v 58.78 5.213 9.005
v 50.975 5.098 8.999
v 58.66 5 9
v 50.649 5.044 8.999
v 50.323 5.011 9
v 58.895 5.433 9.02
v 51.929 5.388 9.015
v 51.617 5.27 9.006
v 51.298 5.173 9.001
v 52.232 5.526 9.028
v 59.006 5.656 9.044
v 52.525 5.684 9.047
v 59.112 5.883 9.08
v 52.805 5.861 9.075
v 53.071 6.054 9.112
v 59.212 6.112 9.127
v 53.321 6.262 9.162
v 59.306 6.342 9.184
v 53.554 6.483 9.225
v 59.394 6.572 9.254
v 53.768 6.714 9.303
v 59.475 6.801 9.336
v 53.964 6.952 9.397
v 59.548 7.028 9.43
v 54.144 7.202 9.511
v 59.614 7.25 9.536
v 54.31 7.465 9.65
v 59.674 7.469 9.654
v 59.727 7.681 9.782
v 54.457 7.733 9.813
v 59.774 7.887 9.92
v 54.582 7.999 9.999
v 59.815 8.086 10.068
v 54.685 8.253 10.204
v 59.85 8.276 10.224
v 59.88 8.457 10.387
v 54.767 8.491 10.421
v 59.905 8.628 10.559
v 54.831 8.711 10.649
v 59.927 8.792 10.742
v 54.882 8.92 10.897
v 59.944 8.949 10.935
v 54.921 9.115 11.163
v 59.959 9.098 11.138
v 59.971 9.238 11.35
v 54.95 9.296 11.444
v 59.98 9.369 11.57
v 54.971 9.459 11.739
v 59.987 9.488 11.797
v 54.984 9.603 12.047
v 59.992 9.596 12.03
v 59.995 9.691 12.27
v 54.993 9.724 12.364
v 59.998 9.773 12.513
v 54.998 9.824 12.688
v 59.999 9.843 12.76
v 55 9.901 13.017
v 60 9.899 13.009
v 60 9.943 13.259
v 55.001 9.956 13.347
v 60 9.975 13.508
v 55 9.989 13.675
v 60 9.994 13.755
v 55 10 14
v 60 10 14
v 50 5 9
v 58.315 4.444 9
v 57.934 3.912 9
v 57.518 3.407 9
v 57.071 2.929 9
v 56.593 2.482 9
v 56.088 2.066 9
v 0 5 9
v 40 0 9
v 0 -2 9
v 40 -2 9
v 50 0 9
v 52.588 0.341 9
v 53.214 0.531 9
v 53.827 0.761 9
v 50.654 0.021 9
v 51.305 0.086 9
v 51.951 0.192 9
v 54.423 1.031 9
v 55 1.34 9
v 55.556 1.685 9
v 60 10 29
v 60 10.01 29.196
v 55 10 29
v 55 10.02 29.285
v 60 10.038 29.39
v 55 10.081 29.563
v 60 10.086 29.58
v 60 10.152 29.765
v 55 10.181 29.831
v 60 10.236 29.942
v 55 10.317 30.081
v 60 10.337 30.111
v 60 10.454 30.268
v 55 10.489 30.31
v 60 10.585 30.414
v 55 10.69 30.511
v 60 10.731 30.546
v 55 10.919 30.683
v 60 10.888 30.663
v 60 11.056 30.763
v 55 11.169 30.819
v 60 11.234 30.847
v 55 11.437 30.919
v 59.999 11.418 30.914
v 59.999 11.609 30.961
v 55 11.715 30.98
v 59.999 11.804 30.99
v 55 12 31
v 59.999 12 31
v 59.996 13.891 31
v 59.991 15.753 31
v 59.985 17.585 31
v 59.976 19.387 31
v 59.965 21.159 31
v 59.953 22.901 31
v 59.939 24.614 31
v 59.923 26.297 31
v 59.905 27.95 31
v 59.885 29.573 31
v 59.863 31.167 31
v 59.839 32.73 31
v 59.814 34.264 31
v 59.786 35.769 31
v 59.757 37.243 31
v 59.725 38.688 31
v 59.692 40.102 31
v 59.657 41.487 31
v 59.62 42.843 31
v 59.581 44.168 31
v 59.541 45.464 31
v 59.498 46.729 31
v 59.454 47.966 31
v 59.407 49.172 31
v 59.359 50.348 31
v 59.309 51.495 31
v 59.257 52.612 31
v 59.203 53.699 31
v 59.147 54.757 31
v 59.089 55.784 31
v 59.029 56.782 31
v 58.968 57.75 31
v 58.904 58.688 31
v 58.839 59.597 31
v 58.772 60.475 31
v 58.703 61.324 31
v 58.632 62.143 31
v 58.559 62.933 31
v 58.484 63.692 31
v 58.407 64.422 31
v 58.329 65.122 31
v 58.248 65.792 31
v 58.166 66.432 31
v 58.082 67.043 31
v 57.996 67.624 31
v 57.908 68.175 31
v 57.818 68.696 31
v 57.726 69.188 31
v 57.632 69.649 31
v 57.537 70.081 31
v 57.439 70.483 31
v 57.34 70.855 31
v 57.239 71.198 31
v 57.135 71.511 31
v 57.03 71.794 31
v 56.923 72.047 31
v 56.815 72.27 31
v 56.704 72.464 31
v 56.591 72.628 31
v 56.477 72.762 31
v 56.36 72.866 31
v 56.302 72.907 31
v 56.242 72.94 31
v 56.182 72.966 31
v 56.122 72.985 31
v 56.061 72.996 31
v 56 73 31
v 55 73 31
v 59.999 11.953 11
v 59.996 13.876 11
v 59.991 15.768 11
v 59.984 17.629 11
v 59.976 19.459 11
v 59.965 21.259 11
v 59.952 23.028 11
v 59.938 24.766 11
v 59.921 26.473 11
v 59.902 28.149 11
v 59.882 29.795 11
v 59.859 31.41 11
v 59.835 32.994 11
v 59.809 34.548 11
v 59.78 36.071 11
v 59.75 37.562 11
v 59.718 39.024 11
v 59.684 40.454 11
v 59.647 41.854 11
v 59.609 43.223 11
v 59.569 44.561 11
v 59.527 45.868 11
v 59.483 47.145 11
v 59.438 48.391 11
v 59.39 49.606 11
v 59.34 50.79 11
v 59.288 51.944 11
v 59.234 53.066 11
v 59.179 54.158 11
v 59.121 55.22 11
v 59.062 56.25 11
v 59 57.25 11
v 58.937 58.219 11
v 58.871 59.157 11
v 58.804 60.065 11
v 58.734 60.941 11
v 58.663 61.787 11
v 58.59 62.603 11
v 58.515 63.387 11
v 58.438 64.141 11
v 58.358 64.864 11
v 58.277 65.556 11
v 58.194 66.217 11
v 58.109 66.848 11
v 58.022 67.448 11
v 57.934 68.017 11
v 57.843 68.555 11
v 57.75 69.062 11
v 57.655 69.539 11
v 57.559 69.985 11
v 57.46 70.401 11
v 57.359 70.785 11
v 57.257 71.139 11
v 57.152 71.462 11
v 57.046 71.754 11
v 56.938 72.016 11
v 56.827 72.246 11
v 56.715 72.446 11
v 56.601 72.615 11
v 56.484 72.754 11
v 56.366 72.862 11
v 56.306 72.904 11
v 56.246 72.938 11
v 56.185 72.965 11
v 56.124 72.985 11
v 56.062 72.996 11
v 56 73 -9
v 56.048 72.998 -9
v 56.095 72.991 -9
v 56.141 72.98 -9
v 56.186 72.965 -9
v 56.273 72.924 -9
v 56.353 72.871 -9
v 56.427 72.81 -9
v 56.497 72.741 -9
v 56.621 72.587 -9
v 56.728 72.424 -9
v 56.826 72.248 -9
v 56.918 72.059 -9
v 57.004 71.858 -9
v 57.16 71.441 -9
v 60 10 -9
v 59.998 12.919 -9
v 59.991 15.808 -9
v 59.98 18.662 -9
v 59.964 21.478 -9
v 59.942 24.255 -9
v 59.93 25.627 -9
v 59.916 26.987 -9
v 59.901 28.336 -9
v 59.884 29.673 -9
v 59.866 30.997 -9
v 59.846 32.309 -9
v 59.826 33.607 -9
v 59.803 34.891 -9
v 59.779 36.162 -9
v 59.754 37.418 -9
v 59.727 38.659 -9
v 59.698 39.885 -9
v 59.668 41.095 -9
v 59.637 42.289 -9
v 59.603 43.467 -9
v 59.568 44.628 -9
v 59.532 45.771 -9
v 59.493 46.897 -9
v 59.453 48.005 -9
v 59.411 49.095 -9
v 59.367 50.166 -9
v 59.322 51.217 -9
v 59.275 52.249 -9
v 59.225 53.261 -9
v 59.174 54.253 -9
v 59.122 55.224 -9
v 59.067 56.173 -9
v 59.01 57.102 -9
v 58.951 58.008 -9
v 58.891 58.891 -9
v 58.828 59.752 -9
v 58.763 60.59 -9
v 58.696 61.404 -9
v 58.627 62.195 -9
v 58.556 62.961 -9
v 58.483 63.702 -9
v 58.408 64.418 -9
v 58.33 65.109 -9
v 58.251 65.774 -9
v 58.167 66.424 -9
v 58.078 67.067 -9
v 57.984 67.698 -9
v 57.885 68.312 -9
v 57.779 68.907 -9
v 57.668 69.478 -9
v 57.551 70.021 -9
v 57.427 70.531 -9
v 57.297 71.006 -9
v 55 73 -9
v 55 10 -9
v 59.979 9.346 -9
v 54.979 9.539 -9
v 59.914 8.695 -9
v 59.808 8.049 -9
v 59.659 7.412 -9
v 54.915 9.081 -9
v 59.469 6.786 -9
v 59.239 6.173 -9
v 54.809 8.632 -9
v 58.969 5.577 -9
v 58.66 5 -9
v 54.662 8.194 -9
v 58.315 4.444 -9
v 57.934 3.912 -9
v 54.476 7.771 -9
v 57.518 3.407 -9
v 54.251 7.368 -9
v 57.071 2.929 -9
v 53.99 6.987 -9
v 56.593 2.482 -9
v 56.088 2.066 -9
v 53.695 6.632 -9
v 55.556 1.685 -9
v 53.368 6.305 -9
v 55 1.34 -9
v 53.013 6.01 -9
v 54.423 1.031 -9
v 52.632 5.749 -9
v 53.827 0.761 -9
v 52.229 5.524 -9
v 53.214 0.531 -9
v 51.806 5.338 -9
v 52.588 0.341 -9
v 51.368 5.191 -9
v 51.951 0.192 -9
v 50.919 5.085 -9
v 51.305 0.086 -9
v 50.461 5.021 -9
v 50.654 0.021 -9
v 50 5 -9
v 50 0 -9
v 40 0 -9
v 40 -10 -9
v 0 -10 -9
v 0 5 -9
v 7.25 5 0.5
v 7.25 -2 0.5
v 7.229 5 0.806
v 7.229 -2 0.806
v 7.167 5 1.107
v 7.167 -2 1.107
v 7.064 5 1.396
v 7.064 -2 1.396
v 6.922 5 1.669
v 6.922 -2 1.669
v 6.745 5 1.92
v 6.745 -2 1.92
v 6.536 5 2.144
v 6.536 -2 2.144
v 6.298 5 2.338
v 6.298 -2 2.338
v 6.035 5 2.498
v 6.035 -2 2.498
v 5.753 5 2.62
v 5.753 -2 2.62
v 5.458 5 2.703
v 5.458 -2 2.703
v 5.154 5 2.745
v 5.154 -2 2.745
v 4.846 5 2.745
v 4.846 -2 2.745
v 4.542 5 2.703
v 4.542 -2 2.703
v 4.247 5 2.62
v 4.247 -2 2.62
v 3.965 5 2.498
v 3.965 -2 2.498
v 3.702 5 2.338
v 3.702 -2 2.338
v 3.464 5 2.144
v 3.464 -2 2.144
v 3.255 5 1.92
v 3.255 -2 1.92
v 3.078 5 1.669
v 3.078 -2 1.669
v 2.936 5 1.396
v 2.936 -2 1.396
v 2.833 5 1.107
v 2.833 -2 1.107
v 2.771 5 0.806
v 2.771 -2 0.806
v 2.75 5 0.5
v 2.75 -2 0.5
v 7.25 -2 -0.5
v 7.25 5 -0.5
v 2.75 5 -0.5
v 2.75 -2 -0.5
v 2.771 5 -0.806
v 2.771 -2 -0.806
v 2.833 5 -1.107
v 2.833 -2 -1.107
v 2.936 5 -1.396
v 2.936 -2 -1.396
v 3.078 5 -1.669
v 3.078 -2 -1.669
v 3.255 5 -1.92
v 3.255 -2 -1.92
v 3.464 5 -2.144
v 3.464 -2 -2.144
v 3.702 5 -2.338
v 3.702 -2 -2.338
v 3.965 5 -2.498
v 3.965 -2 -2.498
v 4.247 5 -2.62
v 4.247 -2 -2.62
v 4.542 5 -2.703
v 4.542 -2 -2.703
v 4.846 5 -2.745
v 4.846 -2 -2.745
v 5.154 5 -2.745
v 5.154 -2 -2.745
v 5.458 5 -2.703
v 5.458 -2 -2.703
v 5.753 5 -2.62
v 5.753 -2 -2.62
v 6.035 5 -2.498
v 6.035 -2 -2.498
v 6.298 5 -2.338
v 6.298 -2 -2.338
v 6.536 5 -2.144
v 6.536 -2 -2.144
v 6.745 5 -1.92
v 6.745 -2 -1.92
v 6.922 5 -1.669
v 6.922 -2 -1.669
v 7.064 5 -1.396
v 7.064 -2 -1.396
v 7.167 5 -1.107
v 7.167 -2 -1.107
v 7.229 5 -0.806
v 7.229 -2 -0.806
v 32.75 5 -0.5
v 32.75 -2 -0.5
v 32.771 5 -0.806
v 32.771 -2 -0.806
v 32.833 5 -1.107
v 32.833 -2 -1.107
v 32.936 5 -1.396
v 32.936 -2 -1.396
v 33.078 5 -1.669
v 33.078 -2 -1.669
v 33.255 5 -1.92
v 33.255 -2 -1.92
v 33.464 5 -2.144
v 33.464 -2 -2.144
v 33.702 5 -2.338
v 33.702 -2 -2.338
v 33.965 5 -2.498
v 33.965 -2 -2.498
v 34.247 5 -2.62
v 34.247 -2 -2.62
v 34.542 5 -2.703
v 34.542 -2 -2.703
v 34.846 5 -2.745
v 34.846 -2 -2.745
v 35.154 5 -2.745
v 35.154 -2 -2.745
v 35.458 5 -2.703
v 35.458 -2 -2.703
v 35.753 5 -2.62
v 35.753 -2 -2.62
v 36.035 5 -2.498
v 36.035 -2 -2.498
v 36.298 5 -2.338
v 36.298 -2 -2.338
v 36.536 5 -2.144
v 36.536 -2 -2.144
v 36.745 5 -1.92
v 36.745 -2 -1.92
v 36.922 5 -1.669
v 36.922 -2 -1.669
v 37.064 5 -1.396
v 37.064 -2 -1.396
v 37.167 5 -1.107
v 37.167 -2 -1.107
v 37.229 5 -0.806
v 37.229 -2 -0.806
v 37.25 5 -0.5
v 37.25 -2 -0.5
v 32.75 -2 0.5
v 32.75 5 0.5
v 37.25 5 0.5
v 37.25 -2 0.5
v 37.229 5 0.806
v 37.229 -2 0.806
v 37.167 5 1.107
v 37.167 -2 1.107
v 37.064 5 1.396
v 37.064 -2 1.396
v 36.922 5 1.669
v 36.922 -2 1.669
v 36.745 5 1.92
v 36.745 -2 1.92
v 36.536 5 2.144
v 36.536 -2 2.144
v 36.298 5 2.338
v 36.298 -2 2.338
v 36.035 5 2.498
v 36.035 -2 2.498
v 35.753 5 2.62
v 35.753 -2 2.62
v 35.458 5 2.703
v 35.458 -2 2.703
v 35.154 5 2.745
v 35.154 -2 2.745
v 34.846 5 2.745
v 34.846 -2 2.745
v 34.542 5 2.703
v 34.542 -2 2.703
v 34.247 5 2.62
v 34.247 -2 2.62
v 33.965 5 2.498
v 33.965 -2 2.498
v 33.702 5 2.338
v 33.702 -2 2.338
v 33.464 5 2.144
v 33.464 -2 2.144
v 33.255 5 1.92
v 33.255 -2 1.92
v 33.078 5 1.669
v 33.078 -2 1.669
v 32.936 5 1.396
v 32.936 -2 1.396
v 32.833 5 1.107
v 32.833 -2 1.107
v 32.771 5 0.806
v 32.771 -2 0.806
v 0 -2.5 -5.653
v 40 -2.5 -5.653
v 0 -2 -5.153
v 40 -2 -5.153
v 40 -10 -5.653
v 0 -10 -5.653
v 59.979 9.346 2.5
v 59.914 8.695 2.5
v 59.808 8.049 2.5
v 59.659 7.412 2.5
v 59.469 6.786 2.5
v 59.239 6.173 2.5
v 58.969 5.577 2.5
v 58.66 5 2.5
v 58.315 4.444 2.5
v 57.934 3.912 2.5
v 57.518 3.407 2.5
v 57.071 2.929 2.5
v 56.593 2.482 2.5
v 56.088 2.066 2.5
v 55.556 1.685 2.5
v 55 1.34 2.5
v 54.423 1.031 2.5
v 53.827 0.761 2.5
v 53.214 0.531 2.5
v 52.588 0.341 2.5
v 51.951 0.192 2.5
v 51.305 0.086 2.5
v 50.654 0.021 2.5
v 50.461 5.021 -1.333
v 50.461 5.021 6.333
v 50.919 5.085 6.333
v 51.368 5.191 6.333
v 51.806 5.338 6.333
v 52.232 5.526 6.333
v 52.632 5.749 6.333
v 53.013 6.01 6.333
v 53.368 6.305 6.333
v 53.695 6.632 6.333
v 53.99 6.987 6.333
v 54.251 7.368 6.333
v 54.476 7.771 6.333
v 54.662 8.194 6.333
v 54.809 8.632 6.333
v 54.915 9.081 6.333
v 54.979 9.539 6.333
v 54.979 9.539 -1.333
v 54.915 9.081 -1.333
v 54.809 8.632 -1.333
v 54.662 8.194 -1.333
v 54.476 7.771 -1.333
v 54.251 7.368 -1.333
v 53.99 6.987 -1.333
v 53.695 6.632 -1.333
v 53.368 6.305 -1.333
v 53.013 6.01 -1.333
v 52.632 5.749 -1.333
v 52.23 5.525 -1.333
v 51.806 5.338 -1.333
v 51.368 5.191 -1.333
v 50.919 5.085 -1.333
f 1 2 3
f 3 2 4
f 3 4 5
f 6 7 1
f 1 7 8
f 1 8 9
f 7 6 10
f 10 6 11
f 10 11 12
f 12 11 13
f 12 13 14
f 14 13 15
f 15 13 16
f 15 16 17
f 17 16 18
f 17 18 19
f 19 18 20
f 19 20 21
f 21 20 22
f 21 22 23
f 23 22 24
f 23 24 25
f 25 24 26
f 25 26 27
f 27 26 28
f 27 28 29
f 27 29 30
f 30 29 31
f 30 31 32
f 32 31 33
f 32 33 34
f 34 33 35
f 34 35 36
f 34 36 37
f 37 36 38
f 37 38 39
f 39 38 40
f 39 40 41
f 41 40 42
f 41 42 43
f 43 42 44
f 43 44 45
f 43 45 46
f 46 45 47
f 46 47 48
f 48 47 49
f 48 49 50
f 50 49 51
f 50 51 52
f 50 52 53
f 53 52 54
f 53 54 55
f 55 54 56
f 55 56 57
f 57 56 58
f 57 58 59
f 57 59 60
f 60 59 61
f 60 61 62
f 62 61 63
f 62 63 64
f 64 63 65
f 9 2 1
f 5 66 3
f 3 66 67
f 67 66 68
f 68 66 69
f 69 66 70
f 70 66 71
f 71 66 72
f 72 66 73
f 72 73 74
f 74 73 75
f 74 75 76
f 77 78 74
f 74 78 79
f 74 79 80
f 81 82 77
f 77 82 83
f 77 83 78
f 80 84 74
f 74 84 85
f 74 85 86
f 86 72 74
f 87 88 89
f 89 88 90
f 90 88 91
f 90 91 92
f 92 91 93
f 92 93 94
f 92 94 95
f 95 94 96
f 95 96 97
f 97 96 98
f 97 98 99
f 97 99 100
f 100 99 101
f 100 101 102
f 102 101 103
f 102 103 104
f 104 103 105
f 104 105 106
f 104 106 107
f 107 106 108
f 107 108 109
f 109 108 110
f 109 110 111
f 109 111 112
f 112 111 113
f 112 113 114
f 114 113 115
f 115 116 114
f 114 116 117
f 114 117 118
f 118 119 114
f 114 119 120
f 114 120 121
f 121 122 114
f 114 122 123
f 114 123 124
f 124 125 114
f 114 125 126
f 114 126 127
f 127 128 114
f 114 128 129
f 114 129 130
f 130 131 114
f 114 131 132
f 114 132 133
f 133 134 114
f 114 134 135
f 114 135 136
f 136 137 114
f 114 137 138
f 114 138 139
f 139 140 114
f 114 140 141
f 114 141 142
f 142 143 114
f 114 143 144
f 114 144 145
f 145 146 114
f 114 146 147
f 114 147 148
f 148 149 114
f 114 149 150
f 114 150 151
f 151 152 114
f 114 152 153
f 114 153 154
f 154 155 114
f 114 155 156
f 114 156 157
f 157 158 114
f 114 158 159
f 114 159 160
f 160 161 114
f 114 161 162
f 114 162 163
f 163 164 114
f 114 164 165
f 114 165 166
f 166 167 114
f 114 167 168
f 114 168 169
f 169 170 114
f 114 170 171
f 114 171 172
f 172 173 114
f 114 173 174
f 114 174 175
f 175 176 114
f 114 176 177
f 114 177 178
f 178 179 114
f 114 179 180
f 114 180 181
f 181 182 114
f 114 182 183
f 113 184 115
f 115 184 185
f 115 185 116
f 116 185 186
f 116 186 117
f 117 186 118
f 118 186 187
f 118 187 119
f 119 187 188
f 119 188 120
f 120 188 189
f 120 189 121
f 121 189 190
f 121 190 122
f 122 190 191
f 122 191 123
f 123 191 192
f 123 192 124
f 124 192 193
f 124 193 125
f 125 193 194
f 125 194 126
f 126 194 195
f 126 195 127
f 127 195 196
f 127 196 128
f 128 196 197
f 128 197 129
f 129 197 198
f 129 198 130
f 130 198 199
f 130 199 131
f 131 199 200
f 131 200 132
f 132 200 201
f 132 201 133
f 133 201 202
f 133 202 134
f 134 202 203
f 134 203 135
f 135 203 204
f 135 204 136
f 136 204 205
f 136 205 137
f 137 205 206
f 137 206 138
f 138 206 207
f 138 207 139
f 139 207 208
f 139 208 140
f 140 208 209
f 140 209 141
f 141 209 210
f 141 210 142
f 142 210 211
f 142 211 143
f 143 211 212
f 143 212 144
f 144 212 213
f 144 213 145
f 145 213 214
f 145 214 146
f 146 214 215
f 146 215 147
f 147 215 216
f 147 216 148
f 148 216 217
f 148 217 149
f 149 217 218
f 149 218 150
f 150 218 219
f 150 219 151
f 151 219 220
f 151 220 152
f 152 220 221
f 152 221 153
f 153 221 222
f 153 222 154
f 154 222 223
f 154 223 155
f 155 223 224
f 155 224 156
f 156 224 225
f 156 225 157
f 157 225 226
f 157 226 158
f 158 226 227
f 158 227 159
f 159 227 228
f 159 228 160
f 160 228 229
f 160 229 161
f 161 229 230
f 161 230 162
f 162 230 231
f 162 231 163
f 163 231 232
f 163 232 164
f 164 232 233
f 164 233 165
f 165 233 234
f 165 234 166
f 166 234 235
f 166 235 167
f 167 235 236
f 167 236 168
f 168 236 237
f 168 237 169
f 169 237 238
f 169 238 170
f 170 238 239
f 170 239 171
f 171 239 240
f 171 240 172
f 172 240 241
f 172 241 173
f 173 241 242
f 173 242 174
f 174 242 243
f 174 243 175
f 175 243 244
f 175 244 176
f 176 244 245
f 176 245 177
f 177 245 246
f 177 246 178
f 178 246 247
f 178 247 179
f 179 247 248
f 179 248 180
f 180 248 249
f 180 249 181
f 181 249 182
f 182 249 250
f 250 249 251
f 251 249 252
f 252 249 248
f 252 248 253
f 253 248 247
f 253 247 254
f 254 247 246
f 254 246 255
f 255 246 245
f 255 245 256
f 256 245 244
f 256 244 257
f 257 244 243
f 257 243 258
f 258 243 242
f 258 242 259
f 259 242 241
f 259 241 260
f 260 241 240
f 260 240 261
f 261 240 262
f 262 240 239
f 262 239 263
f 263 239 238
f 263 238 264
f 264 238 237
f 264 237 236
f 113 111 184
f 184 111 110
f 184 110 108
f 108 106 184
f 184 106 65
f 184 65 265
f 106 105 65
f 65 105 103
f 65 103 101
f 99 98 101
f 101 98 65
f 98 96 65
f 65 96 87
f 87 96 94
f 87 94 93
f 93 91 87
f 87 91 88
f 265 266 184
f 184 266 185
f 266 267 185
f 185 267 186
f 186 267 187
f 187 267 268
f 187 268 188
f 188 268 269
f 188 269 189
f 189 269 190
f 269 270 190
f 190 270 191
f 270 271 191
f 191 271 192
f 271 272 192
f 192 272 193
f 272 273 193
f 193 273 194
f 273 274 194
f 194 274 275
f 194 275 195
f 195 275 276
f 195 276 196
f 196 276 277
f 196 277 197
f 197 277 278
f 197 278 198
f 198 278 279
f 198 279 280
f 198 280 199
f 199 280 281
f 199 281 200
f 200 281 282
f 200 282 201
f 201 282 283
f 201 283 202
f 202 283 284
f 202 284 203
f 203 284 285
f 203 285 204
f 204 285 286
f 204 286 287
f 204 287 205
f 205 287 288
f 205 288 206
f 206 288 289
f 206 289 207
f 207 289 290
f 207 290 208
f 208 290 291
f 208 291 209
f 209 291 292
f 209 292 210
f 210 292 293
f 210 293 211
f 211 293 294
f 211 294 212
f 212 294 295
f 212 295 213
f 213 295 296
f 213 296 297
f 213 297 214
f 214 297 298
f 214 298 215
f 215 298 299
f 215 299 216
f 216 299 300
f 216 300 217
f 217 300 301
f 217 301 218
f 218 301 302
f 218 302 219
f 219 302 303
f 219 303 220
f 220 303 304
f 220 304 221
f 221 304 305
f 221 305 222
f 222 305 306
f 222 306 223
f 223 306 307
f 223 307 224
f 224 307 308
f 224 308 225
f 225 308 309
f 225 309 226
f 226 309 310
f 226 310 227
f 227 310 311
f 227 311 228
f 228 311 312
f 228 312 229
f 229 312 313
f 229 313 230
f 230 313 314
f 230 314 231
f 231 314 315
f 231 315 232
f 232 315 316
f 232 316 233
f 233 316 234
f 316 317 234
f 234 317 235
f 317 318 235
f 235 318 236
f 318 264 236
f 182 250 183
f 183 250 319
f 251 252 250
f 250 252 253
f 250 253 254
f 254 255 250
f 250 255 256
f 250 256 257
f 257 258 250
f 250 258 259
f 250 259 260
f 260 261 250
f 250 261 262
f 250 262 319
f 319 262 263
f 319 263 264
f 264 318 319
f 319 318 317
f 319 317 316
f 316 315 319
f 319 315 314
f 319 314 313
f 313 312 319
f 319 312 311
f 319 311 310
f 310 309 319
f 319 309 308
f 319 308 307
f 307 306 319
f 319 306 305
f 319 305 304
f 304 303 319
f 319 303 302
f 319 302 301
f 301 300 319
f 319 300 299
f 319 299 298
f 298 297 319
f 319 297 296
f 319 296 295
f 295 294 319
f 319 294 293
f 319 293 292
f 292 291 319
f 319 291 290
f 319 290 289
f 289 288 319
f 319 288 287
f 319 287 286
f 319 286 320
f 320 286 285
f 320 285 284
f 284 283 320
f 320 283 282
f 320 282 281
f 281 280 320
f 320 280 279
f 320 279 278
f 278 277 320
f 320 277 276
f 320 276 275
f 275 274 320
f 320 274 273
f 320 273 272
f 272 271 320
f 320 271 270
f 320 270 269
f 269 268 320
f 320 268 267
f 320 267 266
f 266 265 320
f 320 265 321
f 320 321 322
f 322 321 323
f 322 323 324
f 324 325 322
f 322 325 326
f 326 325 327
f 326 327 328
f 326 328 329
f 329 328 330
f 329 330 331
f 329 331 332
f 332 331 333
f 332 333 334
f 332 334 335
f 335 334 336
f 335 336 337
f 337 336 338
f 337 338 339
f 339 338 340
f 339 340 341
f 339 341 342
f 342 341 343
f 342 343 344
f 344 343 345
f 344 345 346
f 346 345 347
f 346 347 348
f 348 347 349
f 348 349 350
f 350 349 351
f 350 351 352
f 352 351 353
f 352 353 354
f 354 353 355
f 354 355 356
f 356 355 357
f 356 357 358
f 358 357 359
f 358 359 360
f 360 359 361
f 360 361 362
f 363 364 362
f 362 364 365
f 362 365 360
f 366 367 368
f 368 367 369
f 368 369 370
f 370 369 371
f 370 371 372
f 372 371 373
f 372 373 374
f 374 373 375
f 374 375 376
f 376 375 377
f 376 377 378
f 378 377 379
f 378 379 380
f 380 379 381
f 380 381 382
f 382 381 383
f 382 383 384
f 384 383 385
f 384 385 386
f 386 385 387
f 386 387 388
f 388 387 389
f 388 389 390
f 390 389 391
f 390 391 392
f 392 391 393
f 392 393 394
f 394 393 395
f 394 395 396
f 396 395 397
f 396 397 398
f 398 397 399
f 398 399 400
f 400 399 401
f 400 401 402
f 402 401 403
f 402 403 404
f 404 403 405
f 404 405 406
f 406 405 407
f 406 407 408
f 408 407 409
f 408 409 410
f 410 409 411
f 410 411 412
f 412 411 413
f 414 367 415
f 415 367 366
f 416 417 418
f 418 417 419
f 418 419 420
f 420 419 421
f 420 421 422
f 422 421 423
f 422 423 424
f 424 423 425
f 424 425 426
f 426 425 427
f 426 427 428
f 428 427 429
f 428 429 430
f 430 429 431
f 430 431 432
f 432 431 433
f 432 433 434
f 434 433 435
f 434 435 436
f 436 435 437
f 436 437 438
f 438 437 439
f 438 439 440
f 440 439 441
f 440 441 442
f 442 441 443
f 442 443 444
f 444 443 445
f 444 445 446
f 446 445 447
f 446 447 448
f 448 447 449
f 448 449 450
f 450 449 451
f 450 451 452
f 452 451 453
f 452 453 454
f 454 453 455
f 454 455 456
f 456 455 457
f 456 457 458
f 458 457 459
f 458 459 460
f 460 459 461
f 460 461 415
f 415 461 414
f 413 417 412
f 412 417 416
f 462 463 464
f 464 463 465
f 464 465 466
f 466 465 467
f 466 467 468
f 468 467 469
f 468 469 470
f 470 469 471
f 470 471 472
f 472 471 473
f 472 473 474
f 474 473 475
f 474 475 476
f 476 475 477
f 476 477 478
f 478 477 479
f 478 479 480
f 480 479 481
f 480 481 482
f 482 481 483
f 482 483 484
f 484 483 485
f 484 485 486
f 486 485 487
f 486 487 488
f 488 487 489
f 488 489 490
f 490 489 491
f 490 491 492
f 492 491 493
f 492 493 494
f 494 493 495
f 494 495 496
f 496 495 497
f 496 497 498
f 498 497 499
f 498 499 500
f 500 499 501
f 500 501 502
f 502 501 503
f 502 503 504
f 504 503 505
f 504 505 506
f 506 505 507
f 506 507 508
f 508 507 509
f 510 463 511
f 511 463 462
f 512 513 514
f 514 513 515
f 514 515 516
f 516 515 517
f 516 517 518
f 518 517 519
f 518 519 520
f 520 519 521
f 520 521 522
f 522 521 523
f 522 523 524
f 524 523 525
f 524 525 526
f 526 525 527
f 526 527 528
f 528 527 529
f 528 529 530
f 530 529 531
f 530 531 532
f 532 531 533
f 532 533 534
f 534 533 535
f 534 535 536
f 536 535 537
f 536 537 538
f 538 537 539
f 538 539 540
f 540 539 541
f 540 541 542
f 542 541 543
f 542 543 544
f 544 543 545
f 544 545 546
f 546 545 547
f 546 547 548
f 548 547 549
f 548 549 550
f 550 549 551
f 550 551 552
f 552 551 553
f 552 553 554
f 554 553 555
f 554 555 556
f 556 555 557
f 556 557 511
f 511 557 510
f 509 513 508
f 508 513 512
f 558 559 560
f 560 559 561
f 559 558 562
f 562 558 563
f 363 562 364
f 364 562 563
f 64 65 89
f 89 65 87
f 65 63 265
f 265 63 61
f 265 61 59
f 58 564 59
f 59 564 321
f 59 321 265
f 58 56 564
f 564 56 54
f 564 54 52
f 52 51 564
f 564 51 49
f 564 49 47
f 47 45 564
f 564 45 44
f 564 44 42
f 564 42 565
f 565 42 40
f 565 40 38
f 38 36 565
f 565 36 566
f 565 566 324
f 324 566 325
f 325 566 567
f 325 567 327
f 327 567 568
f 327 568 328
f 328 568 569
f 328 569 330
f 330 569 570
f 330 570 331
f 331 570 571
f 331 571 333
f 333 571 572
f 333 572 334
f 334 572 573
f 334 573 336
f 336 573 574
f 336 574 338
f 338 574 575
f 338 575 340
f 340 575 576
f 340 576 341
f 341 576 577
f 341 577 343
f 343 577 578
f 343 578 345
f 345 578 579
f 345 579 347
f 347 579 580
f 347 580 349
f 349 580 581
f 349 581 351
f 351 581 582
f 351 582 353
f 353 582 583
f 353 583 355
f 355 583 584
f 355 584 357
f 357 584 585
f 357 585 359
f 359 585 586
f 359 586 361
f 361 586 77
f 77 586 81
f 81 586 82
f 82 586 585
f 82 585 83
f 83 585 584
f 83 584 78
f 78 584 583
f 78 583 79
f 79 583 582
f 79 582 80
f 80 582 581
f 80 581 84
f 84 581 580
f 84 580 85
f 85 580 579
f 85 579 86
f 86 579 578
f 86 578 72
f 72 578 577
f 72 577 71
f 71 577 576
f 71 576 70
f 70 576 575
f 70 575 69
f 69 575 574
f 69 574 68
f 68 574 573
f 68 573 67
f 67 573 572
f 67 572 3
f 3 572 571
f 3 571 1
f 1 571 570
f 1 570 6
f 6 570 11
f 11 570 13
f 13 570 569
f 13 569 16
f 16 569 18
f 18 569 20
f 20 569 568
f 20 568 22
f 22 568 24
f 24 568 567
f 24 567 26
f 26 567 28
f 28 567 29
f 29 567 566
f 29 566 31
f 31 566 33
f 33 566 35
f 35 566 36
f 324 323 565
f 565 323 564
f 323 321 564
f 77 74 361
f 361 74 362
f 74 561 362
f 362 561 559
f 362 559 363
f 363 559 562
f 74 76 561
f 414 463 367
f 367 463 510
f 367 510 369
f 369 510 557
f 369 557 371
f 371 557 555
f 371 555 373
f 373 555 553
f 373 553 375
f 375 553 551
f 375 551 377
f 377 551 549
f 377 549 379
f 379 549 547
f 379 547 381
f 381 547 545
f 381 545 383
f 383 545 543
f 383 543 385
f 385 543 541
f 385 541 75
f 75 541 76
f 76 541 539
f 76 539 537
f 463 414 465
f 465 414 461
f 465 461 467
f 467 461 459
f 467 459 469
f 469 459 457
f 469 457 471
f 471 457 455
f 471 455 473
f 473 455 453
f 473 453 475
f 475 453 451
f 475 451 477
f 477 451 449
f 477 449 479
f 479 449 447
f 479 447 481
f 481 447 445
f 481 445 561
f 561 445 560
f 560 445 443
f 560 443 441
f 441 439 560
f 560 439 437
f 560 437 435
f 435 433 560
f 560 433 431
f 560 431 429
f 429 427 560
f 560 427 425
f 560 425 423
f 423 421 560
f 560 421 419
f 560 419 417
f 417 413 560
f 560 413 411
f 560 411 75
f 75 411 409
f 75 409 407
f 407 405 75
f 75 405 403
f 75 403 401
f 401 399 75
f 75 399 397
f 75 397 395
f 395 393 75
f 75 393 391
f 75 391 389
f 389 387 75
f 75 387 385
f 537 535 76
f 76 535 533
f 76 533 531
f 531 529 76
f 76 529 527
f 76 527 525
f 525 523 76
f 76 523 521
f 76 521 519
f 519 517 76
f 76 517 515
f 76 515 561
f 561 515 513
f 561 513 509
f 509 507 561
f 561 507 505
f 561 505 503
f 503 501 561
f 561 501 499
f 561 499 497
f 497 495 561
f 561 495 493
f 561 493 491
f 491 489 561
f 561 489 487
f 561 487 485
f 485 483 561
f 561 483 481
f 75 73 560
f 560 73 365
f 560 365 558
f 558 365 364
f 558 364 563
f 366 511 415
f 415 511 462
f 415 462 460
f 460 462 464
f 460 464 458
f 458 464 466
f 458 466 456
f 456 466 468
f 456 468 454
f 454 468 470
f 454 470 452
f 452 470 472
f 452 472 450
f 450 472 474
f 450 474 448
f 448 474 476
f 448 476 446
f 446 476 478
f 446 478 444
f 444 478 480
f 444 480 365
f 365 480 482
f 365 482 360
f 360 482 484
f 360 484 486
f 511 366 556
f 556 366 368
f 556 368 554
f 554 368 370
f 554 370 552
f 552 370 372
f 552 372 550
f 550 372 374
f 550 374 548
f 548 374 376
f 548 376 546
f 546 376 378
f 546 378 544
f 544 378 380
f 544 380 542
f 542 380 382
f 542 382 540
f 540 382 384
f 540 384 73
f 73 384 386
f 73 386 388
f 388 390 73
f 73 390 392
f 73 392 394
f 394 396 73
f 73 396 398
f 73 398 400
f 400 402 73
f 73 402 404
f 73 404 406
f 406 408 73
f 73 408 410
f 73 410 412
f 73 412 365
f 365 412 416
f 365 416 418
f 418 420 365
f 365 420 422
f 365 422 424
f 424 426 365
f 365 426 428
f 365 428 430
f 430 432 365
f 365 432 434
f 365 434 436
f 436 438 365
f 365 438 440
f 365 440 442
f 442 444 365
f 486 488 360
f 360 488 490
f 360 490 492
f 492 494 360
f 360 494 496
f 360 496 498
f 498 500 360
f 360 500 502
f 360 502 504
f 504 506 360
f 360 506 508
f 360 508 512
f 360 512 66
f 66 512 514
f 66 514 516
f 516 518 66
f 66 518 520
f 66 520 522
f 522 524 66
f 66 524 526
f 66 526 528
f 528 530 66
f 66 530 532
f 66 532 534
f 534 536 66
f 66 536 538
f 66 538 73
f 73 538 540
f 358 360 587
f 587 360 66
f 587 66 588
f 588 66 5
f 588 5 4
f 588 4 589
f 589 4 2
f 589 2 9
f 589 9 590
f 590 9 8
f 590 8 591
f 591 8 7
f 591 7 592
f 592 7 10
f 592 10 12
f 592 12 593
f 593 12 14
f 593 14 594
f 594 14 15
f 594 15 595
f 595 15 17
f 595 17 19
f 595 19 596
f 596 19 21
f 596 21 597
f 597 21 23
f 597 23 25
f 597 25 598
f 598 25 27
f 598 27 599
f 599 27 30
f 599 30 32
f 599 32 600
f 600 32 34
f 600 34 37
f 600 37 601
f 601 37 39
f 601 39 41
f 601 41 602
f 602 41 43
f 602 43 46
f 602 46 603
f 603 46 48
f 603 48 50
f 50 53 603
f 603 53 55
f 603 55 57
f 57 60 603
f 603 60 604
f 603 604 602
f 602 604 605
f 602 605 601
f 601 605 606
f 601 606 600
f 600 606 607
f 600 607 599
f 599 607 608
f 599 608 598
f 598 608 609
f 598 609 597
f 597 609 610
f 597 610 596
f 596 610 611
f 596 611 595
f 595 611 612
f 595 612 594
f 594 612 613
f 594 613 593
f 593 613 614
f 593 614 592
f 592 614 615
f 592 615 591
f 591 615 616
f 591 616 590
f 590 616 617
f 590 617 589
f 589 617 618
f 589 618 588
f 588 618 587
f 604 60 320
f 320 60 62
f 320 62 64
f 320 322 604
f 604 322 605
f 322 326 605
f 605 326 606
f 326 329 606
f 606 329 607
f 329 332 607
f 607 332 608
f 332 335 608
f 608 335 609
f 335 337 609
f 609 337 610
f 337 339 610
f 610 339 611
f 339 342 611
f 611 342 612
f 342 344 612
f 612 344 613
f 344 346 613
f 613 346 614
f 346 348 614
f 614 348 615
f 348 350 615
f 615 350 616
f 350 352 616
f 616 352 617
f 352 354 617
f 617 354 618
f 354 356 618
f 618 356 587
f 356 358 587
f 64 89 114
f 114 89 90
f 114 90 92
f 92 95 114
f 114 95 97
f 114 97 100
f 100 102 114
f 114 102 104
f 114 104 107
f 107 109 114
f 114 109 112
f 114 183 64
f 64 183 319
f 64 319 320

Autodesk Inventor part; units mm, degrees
ref_plane "YZ Plane" through (0, 0, 0) normal (1, 0, 0) x (0, 1, 0)
ref_plane "XZ Plane" through (0, 0, 0) normal (0, 1, 0) x (-1, 0, 0)
ref_plane "XY Plane" through (0, 0, 0) normal (0, 0, 1) x (1, 0, 0)
sketch "スケッチ1" plane through (0, 0, 0) normal (0, 0, 1) x (1, 0, 0)
  line L0 (0, 0) -> (0, 5)
  line L1 (0, 5) -> (50, 5)
  line L2 (55, 10) -> (55, 73)
  line L3 (55, 73) -> (60, 73)
  line L4 (60, 73) -> (60, 10)
  line L5 (50, 0) -> (0, 0)
  arc A0 (50, 0) -> (60, 10) centre (50, 10) ccw
  line L6 (0, 0) -> (50, 0)
  line L7 (40, 0) -> (40, -2)
  line L8 (40, -2) -> (0, -2)
  line L9 (0, -2) -> (0, 0)
  arc A1 (50, 5) -> (55, 10) centre (50, 10) ccw
  point P0 (60, 0)
  point P1 (55, 5)
  point P2 (40, 0)
  dimension "d0" = 55
  dimension "d1" = 73
  dimension "d2" = 5
  dimension "d3" = 5
  dimension "d5" = 10
  dimension "d34" = 2
  dimension "d35" = 40
  dimension "d58" = 5
extrude "押し出し1" add sketch "スケッチ1" along normal mid plane 18
sketch "スケッチ2" plane through (0, 5, 9) normal (0, 1, 0) x (1, 0, 0)
  line L0 (50, 0) -> (0, 0) projected
  line L1 (0, 18) -> (0, 0) projected
  point P0 (5, 9)
  point P1 (35, 9)
  dimension "d8" = 30
  dimension "d59" = 9
  dimension "d60" = 5
hole "穴1" at (5, 5, 0) at (35, 5, 0) direction (0, -1, 0) diameter 4.5 end through all clearance for "Flat Head Machine Screw" size "M4" standard "Ansi Metric M Profile"
sketch "スケッチ3" plane through (0, 0, 9) normal (0, 0, 1) x (1, 0, 0)
  line L0 (60, 10) -> (60, 73) projected
  line L1 (60, 73) -> (55, 73) projected
  line L2 (55, 73) -> (55, 10) projected
  line L3 (50, 5) -> (0, 5) projected
  line L4 (0, 5) -> (0, -2) projected
  arc A0 (50, 0) -> (60, 10) centre (50, 10) ccw projected
  line L5 (0, -2) -> (40, -2) projected
  line L6 (40, -2) -> (40, 0) projected
  line L7 (40, 0) -> (50, 0) projected
  line L8 (60, 10) -> (55, 10)
  line L9 (55, 73) -> (55, 10) projected
  arc A1 (50, 5) -> (55, 10) centre (50, 10) ccw projected
  point P0 (55, 6)
  point P1 (55, 10)
extrude "押し出し2" add sketch "スケッチ3" along normal blind 22 contours L8 L2 L1 L0
sketch "スケッチ4" plane through (0, -2, 9) normal (0, -1, 0) x (1, 0, 0)
  line L0 (0, -18) -> (40, -18)
  line L1 (40, -18) -> (40, -14.653)
  line L2 (40, -14.653) -> (0, -14.653)
  line L3 (0, -14.653) -> (0, -18)
  point P0 (0, -9)
  dimension "d20" = 40
  dimension "d21" = 3.347
extrude "押し出し3" add sketch "スケッチ4" along normal blind 8
chamfer "面取り1" distance 0.5 angle 45 1 edges at (20, -2, -5.653)
sketch "スケッチ6" plane through (0, 5, -9) normal (0, 1, 0) x (1, 0, 0)
  circle A0 centre (5, -9) radius 2.25 projected
  circle A1 centre (35, -9) radius 2.25 projected
  line L0 (5, -9.5) -> (5, -8.5) construction
  line L1 (7.25, -9.5) -> (7.25, -8.5)
  line L2 (2.75, -8.5) -> (2.75, -9.5)
  arc A2 (2.75, -9.5) -> (7.25, -9.5) centre (5, -9.5) ccw
  arc A3 (7.25, -8.5) -> (2.75, -8.5) centre (5, -8.5) ccw
  line L3 (35, -9.5) -> (35, -8.5) construction
  line L4 (32.75, -9.5) -> (32.75, -8.5)
  line L5 (37.25, -8.5) -> (37.25, -9.5)
  arc A4 (32.75, -9.5) -> (37.25, -9.5) centre (35, -9.5) ccw
  arc A5 (37.25, -8.5) -> (32.75, -8.5) centre (35, -8.5) ccw
  point P0 (0, -9)
  dimension "d37" = 1
  dimension "d38" = 1
extrude "押し出し5" cut sketch "スケッチ6" against normal blind 18
sketch "スケッチ5" plane through (0, 0, 31) normal (0, 0, 1) x (1, 0, 0)
  line L0 (55, 73) -> (60, 73) projected
  line L1 (60, 73) -> (60, 10) projected
  line L2 (55, 73) -> (55, 10) projected
  line L3 (60, 10) -> (60, 73) construction
  line L4 (60, 73) -> (56, 73) construction
  spline S0 degree 2 poles (60, 10) (60, 73) (56, 73) knots 1 1 1 2 2 2
  line L5 (60, 73) -> (55, 73) projected
  point P0 (0, 0)
  point P1 (55, 13)
  point P2 (55, 8)
  dimension "d30" = 1
extrude "押し出し4" cut sketch "スケッチ5" against normal through all
fillet "フィレット10" radius 2 1 edges at (57.5, 10, 31)
fillet "フィレット11" radius 5 1 edges at (57.5, 10, 9)
properties part number "base49"
